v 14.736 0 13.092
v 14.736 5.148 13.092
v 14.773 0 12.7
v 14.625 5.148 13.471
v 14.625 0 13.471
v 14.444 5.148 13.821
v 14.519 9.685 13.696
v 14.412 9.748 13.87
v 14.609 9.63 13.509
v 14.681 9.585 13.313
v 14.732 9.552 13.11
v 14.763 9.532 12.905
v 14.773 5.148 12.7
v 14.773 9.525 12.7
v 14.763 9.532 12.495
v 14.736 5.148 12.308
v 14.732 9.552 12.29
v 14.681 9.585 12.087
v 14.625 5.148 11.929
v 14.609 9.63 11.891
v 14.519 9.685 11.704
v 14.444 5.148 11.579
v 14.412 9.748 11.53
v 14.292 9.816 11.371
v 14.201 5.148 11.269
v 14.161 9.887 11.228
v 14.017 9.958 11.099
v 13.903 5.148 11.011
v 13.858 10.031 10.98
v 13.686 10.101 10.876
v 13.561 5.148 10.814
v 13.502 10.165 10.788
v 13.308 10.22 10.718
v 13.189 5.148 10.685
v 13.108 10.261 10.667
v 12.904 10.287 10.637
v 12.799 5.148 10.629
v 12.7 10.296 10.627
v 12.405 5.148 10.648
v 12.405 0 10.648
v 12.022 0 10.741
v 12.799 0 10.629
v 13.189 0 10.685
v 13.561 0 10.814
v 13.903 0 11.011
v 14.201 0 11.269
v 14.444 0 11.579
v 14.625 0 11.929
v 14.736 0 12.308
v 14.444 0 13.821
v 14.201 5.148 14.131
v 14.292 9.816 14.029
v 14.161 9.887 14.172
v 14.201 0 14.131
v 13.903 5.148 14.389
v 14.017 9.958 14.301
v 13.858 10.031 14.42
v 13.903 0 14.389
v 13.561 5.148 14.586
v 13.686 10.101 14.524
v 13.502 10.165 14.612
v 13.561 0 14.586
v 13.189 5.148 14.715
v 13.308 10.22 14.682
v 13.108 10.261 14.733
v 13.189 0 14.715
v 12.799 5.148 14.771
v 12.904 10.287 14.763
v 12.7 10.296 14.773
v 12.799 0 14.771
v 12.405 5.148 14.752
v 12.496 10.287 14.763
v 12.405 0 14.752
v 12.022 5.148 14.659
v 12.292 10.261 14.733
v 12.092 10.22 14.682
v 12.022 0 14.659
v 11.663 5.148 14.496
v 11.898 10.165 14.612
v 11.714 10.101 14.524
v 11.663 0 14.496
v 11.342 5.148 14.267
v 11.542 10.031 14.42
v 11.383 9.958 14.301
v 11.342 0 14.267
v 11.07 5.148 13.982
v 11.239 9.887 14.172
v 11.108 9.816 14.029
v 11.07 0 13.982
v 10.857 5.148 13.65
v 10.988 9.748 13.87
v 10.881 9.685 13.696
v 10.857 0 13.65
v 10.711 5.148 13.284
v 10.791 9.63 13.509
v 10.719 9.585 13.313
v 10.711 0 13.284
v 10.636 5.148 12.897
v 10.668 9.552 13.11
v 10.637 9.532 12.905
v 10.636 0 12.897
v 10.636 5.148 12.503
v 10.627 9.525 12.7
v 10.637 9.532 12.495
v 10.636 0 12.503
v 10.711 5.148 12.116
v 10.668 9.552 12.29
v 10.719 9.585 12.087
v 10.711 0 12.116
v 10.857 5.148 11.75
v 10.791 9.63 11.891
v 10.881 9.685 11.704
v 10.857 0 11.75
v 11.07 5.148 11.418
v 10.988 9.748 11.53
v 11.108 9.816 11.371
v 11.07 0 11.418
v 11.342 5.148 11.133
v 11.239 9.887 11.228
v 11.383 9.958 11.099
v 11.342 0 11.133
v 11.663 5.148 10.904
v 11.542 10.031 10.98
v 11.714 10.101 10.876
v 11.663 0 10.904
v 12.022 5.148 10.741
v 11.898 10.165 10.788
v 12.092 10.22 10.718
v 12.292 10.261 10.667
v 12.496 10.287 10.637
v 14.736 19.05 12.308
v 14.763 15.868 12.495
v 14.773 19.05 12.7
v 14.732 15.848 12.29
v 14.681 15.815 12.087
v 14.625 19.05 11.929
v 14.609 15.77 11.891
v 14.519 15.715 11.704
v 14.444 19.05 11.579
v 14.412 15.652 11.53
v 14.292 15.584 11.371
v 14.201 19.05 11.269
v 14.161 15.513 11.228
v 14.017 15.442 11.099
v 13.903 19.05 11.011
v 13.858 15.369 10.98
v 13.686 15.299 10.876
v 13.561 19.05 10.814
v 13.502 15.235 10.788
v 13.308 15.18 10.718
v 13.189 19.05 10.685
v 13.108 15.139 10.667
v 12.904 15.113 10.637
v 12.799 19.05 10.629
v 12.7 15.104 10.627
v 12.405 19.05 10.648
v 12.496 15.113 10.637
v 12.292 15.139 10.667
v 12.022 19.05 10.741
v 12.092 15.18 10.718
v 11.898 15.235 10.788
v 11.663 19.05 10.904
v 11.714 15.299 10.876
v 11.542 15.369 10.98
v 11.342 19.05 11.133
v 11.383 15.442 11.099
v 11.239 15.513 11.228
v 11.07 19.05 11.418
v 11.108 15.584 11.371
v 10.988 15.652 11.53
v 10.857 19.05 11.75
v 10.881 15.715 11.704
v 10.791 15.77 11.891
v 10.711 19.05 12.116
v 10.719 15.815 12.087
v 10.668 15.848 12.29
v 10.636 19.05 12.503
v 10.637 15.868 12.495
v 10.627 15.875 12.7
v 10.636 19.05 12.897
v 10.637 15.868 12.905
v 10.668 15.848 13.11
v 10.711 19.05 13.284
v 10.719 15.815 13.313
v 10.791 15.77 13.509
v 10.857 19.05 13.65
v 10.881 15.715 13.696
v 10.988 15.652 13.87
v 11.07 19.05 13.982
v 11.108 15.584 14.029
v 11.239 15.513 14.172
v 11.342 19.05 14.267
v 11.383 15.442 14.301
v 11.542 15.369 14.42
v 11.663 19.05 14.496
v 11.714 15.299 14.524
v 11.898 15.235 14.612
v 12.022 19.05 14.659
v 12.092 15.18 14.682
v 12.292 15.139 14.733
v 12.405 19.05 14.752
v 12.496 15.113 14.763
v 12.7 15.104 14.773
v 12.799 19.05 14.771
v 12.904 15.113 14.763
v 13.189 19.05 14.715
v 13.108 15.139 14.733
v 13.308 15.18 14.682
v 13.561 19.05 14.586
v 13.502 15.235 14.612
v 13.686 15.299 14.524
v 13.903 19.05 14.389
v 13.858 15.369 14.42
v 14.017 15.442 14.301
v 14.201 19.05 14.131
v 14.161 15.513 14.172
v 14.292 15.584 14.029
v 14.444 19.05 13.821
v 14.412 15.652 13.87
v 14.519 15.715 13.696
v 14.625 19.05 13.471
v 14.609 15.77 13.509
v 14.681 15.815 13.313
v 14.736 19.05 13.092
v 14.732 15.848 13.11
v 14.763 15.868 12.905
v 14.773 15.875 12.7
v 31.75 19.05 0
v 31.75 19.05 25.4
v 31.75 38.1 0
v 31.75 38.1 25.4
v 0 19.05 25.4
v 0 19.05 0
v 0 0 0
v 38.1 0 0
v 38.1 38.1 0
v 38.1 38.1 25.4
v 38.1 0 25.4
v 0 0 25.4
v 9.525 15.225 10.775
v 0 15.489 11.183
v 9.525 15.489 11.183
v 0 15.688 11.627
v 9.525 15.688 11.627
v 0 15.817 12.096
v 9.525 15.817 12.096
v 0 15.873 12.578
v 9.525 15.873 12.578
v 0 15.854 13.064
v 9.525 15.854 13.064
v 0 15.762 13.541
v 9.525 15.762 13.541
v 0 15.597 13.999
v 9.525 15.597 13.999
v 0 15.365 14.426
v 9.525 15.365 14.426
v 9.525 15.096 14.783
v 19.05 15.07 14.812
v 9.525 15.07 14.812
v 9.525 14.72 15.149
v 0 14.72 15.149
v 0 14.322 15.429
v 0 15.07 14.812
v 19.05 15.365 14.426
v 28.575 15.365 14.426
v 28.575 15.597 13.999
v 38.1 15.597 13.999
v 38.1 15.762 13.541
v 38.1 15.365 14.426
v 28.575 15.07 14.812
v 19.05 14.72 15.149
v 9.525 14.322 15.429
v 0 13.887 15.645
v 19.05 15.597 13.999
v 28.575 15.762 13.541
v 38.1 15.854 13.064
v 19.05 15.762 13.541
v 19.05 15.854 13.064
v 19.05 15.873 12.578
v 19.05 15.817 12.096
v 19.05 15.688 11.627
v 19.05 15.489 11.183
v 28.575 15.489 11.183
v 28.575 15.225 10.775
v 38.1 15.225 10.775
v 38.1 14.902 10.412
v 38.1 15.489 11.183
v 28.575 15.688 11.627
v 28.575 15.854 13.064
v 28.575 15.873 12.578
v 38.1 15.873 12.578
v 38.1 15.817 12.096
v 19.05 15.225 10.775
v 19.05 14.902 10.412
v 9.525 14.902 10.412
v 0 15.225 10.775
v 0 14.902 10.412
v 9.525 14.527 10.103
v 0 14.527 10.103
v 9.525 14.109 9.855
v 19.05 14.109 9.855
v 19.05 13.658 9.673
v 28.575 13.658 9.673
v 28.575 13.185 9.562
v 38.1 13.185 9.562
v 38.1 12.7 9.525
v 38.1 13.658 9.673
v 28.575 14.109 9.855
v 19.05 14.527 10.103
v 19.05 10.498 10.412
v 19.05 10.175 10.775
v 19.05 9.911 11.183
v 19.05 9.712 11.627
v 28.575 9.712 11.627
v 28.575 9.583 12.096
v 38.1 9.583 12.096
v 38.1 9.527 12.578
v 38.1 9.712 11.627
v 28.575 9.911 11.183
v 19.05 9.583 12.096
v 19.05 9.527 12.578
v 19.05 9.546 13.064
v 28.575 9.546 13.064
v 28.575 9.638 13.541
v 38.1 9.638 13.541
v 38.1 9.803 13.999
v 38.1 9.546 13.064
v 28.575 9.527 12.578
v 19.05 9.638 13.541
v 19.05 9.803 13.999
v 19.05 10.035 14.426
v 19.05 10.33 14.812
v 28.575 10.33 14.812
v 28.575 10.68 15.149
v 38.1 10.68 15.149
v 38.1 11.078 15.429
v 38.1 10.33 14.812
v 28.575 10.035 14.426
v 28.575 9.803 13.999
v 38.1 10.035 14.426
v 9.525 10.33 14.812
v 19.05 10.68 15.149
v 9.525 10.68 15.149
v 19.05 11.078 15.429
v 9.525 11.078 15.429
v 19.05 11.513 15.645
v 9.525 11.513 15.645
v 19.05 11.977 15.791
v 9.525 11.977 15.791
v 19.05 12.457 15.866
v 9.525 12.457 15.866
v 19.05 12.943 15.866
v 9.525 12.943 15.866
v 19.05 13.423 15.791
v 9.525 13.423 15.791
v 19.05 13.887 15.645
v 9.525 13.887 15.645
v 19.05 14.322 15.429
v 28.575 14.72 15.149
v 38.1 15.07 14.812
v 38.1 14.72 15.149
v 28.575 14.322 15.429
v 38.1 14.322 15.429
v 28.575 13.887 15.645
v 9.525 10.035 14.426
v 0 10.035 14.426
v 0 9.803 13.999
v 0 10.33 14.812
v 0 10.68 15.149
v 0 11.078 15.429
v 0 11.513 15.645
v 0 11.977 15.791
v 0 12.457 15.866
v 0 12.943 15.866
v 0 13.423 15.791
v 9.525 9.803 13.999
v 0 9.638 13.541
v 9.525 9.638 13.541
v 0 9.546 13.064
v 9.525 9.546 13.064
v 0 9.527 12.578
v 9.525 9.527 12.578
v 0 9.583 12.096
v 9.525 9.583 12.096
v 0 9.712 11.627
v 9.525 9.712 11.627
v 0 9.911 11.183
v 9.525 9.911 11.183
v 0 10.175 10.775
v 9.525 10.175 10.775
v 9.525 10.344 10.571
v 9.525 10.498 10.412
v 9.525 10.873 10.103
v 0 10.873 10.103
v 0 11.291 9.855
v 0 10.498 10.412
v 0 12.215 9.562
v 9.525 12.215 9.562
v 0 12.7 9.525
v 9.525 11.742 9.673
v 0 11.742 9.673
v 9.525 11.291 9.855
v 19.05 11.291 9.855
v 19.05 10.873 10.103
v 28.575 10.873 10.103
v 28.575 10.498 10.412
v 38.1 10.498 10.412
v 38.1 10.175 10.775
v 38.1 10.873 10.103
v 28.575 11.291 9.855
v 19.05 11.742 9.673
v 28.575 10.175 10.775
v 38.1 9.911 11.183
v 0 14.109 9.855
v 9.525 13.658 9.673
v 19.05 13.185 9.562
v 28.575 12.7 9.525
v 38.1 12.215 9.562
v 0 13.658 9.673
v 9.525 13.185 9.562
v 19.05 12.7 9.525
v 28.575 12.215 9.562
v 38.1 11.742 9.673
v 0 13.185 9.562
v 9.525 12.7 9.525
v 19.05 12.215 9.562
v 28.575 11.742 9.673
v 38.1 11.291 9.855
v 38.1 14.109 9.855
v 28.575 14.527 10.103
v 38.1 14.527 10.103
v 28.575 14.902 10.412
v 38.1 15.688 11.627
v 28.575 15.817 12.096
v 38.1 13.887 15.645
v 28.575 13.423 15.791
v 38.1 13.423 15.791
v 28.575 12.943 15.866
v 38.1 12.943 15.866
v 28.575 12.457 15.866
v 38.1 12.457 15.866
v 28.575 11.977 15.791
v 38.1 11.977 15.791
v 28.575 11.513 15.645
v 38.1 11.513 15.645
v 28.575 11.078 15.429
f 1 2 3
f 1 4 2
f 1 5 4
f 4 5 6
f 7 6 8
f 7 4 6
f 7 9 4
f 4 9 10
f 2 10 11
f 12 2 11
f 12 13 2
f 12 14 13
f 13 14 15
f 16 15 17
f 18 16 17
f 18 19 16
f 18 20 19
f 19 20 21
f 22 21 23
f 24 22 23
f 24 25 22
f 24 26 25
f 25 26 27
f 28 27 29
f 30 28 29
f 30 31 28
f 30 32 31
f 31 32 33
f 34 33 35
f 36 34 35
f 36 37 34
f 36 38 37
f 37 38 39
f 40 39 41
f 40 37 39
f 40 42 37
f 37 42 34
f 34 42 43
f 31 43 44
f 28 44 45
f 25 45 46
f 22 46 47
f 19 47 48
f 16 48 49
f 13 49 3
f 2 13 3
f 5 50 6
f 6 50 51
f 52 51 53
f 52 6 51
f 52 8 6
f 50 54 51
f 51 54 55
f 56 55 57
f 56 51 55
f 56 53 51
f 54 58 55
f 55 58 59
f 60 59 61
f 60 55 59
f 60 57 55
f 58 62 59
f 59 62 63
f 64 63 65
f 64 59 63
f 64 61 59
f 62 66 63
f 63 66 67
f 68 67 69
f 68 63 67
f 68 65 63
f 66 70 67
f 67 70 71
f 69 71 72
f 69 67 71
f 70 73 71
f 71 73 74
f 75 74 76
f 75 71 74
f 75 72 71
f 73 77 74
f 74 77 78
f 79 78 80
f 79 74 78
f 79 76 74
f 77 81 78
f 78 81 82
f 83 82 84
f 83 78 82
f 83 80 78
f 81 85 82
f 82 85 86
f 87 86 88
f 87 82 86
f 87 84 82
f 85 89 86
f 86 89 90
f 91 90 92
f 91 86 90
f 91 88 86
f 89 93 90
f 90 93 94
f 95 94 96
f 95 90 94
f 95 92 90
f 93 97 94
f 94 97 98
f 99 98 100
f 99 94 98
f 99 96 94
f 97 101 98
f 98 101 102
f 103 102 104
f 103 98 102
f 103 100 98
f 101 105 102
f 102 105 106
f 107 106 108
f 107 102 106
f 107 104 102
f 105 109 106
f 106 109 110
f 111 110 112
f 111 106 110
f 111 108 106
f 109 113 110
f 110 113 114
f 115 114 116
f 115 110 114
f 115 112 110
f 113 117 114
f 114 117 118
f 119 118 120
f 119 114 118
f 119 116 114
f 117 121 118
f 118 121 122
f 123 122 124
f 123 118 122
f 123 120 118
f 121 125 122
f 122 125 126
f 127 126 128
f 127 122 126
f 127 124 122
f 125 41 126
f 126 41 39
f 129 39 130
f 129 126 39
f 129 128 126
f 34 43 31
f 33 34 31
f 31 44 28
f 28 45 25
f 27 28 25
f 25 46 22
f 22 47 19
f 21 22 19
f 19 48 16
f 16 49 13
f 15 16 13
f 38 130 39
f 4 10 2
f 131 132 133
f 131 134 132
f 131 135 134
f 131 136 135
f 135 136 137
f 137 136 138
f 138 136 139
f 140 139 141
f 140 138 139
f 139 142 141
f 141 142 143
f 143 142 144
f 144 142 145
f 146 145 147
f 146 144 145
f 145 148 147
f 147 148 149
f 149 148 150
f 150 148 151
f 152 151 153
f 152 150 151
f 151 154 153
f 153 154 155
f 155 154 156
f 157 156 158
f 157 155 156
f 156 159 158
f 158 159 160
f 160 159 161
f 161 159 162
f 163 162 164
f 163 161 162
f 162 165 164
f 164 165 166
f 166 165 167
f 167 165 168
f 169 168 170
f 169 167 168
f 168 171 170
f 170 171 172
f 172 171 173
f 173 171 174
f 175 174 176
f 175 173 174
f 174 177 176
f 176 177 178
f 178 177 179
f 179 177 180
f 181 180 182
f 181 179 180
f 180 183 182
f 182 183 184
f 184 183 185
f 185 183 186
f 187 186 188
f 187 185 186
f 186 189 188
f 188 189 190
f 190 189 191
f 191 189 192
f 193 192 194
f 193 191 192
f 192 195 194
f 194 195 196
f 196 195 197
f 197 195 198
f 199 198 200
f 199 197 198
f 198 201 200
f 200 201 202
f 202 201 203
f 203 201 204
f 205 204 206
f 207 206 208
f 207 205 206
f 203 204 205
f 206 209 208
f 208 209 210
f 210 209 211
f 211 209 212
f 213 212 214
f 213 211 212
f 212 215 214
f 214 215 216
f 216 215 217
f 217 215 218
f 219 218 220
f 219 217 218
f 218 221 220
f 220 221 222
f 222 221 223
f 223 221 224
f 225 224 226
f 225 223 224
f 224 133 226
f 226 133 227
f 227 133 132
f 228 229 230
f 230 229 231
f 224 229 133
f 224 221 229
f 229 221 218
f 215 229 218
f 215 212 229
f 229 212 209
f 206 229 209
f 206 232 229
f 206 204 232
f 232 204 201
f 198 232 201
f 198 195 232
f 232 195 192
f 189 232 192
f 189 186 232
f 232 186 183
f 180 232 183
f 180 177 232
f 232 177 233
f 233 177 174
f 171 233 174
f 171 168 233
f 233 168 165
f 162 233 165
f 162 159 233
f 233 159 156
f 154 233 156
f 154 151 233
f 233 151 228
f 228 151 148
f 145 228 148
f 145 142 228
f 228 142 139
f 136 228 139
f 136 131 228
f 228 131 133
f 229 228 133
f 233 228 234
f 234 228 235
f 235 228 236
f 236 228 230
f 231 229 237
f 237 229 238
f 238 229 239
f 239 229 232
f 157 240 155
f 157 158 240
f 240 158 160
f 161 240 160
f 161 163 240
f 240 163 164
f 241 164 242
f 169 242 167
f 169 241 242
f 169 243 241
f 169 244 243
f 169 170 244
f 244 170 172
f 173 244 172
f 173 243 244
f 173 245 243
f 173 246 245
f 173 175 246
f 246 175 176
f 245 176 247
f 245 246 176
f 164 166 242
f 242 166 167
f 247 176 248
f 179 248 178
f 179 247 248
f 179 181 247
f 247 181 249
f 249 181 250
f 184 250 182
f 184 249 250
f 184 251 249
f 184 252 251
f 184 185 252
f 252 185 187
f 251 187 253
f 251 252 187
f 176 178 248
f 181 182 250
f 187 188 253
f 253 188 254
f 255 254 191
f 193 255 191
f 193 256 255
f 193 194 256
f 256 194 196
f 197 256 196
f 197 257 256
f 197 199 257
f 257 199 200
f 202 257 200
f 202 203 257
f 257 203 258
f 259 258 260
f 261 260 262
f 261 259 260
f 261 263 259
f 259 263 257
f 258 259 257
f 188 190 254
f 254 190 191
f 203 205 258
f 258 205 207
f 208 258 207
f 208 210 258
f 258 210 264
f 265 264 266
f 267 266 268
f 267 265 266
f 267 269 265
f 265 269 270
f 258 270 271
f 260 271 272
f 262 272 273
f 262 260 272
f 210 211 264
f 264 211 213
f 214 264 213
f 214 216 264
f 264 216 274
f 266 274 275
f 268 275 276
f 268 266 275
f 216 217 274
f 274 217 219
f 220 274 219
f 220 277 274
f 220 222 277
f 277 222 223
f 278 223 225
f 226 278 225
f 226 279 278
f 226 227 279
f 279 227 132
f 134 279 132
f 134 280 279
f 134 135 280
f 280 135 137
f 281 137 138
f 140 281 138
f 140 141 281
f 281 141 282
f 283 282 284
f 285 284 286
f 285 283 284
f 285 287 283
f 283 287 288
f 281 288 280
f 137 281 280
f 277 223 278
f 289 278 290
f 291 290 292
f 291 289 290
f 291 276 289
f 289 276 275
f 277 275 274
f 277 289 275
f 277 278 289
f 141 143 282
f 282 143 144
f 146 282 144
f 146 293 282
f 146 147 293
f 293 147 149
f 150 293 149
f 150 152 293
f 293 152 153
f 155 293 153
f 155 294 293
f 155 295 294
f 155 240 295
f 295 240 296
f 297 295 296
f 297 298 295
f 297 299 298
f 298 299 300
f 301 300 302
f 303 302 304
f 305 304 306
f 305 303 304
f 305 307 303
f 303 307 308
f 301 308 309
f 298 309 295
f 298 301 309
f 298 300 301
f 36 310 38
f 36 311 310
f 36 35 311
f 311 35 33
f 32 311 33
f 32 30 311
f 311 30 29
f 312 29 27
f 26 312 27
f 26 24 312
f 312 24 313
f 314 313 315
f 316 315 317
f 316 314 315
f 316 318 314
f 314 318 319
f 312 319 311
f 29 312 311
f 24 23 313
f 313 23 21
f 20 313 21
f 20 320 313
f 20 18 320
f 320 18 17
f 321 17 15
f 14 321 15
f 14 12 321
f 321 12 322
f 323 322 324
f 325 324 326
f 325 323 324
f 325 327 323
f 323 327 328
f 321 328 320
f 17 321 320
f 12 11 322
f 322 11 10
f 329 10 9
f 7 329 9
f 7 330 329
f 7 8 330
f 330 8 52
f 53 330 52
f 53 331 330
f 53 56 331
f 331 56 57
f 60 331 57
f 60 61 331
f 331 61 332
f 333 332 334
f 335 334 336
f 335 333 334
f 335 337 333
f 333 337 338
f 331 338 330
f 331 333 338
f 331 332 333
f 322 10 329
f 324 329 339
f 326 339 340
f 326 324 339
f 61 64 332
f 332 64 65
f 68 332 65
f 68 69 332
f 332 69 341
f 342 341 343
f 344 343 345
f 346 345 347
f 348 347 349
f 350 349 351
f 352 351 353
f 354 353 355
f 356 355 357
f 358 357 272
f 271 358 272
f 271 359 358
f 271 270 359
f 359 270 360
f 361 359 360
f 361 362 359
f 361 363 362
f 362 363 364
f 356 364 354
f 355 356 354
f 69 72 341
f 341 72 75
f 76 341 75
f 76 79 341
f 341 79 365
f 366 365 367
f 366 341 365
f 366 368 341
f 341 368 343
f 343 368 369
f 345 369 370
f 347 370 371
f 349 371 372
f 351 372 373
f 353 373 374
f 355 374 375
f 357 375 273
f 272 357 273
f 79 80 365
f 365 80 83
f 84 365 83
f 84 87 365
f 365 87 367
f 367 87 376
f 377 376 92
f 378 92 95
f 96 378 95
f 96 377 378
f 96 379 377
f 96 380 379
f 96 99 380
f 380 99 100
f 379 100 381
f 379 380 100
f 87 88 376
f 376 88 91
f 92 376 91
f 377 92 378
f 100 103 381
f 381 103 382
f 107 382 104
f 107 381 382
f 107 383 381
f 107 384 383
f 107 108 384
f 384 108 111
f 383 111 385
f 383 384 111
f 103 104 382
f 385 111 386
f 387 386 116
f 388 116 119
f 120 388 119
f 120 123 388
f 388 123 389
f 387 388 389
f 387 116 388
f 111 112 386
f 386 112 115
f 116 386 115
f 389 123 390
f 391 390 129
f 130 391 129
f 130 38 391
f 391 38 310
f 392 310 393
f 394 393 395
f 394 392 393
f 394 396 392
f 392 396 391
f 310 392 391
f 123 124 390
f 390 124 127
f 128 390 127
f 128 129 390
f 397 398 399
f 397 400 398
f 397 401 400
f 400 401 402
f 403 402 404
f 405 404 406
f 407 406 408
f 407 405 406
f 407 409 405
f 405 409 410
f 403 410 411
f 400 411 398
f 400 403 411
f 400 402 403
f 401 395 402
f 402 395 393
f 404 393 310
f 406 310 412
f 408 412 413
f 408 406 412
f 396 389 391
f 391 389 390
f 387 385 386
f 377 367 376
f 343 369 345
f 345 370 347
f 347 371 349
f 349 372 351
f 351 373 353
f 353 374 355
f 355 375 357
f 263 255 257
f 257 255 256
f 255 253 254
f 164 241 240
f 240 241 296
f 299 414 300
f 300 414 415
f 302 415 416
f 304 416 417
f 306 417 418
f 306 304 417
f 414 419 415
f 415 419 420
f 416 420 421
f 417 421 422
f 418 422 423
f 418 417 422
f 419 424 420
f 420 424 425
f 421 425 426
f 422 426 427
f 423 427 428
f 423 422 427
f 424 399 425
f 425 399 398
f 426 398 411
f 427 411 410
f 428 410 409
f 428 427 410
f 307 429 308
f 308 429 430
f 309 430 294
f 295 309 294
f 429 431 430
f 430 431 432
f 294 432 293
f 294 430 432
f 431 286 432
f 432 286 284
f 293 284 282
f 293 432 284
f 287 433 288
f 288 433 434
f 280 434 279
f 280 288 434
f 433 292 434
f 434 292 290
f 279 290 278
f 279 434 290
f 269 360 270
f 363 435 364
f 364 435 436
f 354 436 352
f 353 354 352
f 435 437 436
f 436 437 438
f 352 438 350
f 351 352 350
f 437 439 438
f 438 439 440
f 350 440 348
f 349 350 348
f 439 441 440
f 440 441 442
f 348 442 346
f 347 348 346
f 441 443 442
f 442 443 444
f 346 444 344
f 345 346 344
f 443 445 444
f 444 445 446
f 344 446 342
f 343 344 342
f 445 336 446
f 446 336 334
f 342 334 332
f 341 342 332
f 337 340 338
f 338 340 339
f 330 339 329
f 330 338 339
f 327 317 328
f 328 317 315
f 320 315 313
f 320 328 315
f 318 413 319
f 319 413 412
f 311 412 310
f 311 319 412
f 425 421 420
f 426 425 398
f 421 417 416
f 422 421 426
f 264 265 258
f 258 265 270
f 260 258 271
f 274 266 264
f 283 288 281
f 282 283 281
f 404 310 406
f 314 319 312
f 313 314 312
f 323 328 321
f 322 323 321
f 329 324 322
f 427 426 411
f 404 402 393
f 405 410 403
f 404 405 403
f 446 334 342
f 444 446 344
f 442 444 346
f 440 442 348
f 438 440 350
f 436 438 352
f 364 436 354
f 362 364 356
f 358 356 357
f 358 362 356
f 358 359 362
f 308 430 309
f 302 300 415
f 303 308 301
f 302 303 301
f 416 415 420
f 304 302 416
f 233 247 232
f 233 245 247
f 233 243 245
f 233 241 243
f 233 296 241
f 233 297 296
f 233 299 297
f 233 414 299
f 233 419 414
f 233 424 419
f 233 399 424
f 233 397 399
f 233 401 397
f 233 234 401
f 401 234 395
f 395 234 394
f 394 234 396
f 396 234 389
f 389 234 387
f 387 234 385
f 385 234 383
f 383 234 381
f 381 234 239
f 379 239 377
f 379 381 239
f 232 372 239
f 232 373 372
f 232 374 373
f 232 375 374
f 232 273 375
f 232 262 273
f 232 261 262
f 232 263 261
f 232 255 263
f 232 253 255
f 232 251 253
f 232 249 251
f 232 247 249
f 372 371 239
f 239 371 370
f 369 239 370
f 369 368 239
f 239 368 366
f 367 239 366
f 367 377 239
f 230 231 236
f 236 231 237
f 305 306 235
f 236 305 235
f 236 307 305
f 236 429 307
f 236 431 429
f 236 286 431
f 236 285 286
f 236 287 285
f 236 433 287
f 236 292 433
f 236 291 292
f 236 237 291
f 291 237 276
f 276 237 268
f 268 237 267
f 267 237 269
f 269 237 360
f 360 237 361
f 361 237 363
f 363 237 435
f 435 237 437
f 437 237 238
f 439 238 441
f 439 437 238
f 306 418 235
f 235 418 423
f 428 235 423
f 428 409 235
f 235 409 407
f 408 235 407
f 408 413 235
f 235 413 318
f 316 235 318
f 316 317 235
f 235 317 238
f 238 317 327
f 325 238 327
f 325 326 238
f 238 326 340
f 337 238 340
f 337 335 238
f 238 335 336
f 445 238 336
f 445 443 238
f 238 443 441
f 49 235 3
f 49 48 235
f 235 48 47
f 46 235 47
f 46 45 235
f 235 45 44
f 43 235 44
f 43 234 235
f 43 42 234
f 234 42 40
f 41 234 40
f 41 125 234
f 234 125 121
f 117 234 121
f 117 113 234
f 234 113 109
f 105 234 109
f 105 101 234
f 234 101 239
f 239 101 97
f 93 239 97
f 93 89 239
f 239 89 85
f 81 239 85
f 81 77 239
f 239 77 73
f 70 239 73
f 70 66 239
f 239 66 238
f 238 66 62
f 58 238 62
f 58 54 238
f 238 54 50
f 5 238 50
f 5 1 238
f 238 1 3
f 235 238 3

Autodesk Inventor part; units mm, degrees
ref_plane "YZ Plane" through (0, 0, 0) normal (1, 0, 0) x (0, 1, 0)
ref_plane "XZ Plane" through (0, 0, 0) normal (0, 1, 0) x (-1, 0, 0)
ref_plane "XY Plane" through (0, 0, 0) normal (0, 0, 1) x (1, 0, 0)
sketch "Sketch1" plane through (0, 0, 0) normal (0, 0, 1) x (1, 0, 0)
  line L0 (0, 0) -> (38.1, 0)
  line L1 (38.1, 0) -> (38.1, 38.1)
  line L2 (38.1, 38.1) -> (0, 38.1)
  line L3 (0, 38.1) -> (0, 0)
  dimension "d0" = 38.1
  dimension "d1" = 38.1
extrude "Extrusion1" add sketch "Sketch1" along normal blind 25.4
sketch "Sketch2" plane through (38.1, 0, 0) normal (1, 0, 0) x (0, 0, -1)
  line L0 (0, 0) -> (0, 38.1) projected
  circle A0 centre (-12.7, 12.7) radius 3.175
  line L1 (0, 0) -> (-25.4, 0) projected
  dimension "d5" = 12.7
  dimension "d6" = 6.35
  dimension "d18" = 12.7
extrude "Extrusion2" cut sketch "Sketch2" against normal through all
sketch "Sketch3" plane through (0, 0, 25.4) normal (0, 0, 1) x (1, 0, 0)
  line L0 (38.1, 38.1) -> (38.1, 0) projected
  line L1 (0, 38.1) -> (38.1, 38.1) projected
  line L2 (0, 38.1) -> (31.75, 38.1)
  line L3 (31.75, 38.1) -> (31.75, 19.05)
  line L4 (31.75, 19.05) -> (0, 19.05)
  line L5 (0, 19.05) -> (0, 38.1)
  dimension "d10" = 19.05
  dimension "d19" = 6.35
extrude "Extrusion3" cut sketch "Sketch3" against normal through all
sketch "Sketch5" plane through (0, 0, 0) normal (0, -1, 0) x (1, 0, 0)
  line L0 (38.1, 25.4) -> (0, 25.4) projected
  line L1 (0, 0) -> (0, 25.4) projected
  circle A0 centre (12.7, 12.7) radius 2.0735
  dimension "d20" = 12.7
  dimension "d21" = 12.7
extrude "Extrusion5" cut sketch "Sketch5" against normal through all
properties part number "ArmPivotBlock"
